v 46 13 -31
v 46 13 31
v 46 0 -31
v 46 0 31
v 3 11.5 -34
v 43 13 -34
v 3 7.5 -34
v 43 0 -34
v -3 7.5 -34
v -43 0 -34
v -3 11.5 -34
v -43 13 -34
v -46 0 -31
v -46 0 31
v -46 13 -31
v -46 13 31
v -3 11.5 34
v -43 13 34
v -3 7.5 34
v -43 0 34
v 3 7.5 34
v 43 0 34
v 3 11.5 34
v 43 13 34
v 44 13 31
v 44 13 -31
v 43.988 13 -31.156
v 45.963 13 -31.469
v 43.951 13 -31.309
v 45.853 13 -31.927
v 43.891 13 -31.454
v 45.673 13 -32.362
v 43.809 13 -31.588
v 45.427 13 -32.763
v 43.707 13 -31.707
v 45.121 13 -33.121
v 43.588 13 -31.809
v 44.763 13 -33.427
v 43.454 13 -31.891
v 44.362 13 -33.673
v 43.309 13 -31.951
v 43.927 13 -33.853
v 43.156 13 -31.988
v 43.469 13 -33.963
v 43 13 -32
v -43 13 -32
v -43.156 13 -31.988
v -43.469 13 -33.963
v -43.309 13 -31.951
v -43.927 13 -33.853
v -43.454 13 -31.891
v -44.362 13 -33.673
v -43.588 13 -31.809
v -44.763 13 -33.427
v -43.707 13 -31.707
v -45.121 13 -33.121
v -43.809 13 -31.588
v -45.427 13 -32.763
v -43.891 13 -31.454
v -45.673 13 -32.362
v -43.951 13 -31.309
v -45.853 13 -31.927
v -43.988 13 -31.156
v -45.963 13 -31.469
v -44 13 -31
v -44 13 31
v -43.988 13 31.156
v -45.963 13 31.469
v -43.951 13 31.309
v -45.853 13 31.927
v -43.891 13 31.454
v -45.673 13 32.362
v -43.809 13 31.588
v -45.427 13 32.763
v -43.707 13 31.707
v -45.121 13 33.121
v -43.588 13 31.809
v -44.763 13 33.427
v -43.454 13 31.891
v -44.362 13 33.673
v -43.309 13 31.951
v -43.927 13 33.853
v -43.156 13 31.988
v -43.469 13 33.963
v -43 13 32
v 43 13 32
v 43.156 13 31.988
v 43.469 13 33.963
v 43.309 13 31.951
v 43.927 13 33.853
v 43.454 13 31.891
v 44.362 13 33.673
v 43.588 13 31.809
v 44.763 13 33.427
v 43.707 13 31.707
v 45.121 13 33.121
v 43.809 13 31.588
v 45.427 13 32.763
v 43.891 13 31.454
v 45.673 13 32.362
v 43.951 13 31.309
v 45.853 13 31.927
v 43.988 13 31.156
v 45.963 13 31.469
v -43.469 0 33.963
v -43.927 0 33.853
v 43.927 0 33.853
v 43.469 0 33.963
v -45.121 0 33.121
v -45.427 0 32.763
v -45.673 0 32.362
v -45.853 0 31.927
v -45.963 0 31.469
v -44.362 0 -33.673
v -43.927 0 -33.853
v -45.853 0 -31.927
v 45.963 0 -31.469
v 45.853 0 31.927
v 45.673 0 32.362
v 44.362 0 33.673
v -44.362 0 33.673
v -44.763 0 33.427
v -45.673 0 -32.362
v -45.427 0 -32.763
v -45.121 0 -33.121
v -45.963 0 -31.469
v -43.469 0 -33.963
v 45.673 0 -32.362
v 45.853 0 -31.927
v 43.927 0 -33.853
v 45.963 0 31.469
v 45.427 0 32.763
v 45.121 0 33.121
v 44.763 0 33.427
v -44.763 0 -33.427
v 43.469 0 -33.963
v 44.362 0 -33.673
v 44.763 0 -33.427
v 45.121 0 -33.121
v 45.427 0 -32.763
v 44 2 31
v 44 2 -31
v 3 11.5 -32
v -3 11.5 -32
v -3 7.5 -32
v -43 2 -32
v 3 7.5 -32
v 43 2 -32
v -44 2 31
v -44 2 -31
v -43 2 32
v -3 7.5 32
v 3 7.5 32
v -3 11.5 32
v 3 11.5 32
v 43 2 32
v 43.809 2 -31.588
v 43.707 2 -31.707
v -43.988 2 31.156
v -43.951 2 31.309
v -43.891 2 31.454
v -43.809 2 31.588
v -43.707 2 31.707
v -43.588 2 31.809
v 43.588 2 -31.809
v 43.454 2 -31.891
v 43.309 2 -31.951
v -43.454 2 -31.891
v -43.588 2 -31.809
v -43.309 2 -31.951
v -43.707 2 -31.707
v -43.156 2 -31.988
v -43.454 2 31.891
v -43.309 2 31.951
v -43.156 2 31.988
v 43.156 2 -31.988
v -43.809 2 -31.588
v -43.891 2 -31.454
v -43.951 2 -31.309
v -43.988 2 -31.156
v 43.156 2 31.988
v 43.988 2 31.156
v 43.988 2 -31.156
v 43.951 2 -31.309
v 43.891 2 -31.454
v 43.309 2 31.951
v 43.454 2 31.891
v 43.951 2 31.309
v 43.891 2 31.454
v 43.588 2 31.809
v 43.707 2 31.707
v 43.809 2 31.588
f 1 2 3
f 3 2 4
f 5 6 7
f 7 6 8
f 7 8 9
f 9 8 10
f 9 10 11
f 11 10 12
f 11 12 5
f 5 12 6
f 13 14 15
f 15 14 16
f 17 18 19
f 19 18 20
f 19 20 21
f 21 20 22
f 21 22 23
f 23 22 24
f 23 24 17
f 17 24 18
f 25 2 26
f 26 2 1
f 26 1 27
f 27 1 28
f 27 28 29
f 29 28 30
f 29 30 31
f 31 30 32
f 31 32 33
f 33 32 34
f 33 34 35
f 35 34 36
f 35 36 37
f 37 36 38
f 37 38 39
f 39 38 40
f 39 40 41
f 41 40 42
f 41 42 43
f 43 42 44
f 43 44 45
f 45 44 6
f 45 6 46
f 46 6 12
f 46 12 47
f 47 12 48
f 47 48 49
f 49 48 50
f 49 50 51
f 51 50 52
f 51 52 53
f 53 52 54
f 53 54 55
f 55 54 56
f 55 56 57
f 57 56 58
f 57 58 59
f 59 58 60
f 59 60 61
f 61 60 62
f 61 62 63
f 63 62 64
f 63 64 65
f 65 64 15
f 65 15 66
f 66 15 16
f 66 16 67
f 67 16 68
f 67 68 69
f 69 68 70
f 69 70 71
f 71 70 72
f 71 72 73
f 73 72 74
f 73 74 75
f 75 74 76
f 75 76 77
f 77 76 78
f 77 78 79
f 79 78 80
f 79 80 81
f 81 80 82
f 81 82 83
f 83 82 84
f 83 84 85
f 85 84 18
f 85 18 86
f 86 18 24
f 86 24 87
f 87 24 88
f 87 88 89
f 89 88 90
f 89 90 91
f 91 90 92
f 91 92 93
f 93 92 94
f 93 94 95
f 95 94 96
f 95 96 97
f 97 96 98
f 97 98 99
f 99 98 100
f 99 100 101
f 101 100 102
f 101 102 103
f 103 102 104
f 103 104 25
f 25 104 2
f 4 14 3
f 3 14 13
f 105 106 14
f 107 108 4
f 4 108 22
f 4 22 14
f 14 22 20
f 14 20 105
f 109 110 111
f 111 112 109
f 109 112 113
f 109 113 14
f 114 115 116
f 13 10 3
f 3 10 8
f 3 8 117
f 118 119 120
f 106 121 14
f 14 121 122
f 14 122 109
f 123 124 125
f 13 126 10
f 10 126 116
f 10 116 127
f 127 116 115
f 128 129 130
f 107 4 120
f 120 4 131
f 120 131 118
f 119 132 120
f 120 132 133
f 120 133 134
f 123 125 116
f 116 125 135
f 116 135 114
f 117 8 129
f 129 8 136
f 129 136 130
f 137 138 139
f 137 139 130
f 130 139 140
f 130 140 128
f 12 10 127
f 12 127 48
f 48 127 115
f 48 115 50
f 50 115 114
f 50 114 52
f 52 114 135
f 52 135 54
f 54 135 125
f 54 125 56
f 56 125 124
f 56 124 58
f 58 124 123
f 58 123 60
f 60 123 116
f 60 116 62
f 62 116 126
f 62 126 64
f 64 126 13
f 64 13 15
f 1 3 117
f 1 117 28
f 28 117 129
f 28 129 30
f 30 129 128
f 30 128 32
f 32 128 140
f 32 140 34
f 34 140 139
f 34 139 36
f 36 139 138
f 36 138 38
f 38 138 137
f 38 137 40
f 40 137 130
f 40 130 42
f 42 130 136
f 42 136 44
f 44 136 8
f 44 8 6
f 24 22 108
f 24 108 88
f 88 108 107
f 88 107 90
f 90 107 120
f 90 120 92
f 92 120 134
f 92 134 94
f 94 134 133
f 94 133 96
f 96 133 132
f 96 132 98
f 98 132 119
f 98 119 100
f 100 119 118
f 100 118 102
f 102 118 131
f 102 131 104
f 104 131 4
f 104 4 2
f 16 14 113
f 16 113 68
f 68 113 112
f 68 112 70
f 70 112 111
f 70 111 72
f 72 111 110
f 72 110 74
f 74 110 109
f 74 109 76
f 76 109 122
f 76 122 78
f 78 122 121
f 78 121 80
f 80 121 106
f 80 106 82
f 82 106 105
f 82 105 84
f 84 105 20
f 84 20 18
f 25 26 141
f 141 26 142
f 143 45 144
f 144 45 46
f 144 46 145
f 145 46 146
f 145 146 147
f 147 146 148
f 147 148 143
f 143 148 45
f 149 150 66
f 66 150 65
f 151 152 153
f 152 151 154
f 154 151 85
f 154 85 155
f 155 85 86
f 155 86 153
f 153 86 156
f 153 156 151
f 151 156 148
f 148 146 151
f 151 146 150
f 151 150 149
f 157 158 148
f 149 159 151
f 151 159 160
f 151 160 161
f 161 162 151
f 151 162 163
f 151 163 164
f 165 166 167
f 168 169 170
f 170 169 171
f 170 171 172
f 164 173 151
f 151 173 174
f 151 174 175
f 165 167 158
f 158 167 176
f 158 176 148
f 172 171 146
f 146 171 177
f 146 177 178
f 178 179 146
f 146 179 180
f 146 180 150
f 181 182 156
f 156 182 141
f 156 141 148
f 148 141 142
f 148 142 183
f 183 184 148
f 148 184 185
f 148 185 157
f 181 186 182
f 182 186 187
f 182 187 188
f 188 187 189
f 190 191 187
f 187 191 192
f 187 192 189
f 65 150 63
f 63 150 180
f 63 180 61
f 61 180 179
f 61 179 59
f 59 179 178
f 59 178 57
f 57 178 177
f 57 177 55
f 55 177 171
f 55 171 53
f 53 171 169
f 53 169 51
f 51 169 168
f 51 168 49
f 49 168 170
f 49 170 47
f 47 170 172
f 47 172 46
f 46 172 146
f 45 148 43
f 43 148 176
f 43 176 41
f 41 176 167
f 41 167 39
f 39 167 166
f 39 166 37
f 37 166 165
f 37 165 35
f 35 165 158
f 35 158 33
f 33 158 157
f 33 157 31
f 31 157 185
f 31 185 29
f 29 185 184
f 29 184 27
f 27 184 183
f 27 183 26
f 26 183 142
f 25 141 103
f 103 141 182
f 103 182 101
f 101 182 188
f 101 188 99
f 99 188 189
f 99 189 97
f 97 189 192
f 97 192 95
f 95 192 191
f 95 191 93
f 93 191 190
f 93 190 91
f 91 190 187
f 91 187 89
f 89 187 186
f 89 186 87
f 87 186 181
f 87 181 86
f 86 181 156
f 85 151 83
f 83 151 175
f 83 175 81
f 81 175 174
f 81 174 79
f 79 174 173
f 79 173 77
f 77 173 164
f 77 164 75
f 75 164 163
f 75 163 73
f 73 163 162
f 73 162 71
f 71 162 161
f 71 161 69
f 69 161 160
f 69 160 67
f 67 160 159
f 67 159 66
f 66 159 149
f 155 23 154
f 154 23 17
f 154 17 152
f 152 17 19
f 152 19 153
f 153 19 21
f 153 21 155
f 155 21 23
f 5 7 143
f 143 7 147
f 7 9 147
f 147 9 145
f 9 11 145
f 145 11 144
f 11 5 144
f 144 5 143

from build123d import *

# Parameters (mm, degrees)
SKETCH1_W               = 92
SKETCH1_H               = 68
BOSS_EXTRUDE1_DEPTH     = 13
FILLET1_R               = 3
SHELL1_T                = -2
SKETCH2_W               = 6
SKETCH2_H               = 4
CUT_EXTRUDE1_DEPTH      = 1
CUT_EXTRUDE1_DEPTH_BACK = 69


with BuildPart() as part:
    # Sketch1 → Boss-Extrude1 (new body)
    with BuildSketch(Plane(origin=(0, 0, 0), x_dir=(1, 0, 0), z_dir=(0, 1, 0))):
        Rectangle(SKETCH1_W, SKETCH1_H)
    extrude(amount=BOSS_EXTRUDE1_DEPTH)

    # Fillet1
    fillet1_edges = [part.edges().sort_by_distance(p)[0] for p in [
        (46, 6.5, 34),
        (-46, 6.5, 34),
        (-46, 6.5, -34),
        (46, 6.5, -34),
    ]]
    fillet(fillet1_edges, radius=FILLET1_R)

    # Shell1
    shell1_openings = [part.faces().sort_by_distance(p)[0] for p in [
        (0, 13, 0),
    ]]
    offset(amount=SHELL1_T, openings=shell1_openings, kind=Kind.INTERSECTION)

    # Sketch2 → Cut-Extrude1 (cut, two sides)
    with BuildSketch(Plane.XY.offset(34)) as cut_extrude1_sk:
        with Locations((0, 9.5)):
            Rectangle(SKETCH2_W, SKETCH2_H)
    extrude(amount=CUT_EXTRUDE1_DEPTH, mode=Mode.SUBTRACT)
    extrude(cut_extrude1_sk.sketch, amount=-CUT_EXTRUDE1_DEPTH_BACK, mode=Mode.SUBTRACT)


solid = part.part
